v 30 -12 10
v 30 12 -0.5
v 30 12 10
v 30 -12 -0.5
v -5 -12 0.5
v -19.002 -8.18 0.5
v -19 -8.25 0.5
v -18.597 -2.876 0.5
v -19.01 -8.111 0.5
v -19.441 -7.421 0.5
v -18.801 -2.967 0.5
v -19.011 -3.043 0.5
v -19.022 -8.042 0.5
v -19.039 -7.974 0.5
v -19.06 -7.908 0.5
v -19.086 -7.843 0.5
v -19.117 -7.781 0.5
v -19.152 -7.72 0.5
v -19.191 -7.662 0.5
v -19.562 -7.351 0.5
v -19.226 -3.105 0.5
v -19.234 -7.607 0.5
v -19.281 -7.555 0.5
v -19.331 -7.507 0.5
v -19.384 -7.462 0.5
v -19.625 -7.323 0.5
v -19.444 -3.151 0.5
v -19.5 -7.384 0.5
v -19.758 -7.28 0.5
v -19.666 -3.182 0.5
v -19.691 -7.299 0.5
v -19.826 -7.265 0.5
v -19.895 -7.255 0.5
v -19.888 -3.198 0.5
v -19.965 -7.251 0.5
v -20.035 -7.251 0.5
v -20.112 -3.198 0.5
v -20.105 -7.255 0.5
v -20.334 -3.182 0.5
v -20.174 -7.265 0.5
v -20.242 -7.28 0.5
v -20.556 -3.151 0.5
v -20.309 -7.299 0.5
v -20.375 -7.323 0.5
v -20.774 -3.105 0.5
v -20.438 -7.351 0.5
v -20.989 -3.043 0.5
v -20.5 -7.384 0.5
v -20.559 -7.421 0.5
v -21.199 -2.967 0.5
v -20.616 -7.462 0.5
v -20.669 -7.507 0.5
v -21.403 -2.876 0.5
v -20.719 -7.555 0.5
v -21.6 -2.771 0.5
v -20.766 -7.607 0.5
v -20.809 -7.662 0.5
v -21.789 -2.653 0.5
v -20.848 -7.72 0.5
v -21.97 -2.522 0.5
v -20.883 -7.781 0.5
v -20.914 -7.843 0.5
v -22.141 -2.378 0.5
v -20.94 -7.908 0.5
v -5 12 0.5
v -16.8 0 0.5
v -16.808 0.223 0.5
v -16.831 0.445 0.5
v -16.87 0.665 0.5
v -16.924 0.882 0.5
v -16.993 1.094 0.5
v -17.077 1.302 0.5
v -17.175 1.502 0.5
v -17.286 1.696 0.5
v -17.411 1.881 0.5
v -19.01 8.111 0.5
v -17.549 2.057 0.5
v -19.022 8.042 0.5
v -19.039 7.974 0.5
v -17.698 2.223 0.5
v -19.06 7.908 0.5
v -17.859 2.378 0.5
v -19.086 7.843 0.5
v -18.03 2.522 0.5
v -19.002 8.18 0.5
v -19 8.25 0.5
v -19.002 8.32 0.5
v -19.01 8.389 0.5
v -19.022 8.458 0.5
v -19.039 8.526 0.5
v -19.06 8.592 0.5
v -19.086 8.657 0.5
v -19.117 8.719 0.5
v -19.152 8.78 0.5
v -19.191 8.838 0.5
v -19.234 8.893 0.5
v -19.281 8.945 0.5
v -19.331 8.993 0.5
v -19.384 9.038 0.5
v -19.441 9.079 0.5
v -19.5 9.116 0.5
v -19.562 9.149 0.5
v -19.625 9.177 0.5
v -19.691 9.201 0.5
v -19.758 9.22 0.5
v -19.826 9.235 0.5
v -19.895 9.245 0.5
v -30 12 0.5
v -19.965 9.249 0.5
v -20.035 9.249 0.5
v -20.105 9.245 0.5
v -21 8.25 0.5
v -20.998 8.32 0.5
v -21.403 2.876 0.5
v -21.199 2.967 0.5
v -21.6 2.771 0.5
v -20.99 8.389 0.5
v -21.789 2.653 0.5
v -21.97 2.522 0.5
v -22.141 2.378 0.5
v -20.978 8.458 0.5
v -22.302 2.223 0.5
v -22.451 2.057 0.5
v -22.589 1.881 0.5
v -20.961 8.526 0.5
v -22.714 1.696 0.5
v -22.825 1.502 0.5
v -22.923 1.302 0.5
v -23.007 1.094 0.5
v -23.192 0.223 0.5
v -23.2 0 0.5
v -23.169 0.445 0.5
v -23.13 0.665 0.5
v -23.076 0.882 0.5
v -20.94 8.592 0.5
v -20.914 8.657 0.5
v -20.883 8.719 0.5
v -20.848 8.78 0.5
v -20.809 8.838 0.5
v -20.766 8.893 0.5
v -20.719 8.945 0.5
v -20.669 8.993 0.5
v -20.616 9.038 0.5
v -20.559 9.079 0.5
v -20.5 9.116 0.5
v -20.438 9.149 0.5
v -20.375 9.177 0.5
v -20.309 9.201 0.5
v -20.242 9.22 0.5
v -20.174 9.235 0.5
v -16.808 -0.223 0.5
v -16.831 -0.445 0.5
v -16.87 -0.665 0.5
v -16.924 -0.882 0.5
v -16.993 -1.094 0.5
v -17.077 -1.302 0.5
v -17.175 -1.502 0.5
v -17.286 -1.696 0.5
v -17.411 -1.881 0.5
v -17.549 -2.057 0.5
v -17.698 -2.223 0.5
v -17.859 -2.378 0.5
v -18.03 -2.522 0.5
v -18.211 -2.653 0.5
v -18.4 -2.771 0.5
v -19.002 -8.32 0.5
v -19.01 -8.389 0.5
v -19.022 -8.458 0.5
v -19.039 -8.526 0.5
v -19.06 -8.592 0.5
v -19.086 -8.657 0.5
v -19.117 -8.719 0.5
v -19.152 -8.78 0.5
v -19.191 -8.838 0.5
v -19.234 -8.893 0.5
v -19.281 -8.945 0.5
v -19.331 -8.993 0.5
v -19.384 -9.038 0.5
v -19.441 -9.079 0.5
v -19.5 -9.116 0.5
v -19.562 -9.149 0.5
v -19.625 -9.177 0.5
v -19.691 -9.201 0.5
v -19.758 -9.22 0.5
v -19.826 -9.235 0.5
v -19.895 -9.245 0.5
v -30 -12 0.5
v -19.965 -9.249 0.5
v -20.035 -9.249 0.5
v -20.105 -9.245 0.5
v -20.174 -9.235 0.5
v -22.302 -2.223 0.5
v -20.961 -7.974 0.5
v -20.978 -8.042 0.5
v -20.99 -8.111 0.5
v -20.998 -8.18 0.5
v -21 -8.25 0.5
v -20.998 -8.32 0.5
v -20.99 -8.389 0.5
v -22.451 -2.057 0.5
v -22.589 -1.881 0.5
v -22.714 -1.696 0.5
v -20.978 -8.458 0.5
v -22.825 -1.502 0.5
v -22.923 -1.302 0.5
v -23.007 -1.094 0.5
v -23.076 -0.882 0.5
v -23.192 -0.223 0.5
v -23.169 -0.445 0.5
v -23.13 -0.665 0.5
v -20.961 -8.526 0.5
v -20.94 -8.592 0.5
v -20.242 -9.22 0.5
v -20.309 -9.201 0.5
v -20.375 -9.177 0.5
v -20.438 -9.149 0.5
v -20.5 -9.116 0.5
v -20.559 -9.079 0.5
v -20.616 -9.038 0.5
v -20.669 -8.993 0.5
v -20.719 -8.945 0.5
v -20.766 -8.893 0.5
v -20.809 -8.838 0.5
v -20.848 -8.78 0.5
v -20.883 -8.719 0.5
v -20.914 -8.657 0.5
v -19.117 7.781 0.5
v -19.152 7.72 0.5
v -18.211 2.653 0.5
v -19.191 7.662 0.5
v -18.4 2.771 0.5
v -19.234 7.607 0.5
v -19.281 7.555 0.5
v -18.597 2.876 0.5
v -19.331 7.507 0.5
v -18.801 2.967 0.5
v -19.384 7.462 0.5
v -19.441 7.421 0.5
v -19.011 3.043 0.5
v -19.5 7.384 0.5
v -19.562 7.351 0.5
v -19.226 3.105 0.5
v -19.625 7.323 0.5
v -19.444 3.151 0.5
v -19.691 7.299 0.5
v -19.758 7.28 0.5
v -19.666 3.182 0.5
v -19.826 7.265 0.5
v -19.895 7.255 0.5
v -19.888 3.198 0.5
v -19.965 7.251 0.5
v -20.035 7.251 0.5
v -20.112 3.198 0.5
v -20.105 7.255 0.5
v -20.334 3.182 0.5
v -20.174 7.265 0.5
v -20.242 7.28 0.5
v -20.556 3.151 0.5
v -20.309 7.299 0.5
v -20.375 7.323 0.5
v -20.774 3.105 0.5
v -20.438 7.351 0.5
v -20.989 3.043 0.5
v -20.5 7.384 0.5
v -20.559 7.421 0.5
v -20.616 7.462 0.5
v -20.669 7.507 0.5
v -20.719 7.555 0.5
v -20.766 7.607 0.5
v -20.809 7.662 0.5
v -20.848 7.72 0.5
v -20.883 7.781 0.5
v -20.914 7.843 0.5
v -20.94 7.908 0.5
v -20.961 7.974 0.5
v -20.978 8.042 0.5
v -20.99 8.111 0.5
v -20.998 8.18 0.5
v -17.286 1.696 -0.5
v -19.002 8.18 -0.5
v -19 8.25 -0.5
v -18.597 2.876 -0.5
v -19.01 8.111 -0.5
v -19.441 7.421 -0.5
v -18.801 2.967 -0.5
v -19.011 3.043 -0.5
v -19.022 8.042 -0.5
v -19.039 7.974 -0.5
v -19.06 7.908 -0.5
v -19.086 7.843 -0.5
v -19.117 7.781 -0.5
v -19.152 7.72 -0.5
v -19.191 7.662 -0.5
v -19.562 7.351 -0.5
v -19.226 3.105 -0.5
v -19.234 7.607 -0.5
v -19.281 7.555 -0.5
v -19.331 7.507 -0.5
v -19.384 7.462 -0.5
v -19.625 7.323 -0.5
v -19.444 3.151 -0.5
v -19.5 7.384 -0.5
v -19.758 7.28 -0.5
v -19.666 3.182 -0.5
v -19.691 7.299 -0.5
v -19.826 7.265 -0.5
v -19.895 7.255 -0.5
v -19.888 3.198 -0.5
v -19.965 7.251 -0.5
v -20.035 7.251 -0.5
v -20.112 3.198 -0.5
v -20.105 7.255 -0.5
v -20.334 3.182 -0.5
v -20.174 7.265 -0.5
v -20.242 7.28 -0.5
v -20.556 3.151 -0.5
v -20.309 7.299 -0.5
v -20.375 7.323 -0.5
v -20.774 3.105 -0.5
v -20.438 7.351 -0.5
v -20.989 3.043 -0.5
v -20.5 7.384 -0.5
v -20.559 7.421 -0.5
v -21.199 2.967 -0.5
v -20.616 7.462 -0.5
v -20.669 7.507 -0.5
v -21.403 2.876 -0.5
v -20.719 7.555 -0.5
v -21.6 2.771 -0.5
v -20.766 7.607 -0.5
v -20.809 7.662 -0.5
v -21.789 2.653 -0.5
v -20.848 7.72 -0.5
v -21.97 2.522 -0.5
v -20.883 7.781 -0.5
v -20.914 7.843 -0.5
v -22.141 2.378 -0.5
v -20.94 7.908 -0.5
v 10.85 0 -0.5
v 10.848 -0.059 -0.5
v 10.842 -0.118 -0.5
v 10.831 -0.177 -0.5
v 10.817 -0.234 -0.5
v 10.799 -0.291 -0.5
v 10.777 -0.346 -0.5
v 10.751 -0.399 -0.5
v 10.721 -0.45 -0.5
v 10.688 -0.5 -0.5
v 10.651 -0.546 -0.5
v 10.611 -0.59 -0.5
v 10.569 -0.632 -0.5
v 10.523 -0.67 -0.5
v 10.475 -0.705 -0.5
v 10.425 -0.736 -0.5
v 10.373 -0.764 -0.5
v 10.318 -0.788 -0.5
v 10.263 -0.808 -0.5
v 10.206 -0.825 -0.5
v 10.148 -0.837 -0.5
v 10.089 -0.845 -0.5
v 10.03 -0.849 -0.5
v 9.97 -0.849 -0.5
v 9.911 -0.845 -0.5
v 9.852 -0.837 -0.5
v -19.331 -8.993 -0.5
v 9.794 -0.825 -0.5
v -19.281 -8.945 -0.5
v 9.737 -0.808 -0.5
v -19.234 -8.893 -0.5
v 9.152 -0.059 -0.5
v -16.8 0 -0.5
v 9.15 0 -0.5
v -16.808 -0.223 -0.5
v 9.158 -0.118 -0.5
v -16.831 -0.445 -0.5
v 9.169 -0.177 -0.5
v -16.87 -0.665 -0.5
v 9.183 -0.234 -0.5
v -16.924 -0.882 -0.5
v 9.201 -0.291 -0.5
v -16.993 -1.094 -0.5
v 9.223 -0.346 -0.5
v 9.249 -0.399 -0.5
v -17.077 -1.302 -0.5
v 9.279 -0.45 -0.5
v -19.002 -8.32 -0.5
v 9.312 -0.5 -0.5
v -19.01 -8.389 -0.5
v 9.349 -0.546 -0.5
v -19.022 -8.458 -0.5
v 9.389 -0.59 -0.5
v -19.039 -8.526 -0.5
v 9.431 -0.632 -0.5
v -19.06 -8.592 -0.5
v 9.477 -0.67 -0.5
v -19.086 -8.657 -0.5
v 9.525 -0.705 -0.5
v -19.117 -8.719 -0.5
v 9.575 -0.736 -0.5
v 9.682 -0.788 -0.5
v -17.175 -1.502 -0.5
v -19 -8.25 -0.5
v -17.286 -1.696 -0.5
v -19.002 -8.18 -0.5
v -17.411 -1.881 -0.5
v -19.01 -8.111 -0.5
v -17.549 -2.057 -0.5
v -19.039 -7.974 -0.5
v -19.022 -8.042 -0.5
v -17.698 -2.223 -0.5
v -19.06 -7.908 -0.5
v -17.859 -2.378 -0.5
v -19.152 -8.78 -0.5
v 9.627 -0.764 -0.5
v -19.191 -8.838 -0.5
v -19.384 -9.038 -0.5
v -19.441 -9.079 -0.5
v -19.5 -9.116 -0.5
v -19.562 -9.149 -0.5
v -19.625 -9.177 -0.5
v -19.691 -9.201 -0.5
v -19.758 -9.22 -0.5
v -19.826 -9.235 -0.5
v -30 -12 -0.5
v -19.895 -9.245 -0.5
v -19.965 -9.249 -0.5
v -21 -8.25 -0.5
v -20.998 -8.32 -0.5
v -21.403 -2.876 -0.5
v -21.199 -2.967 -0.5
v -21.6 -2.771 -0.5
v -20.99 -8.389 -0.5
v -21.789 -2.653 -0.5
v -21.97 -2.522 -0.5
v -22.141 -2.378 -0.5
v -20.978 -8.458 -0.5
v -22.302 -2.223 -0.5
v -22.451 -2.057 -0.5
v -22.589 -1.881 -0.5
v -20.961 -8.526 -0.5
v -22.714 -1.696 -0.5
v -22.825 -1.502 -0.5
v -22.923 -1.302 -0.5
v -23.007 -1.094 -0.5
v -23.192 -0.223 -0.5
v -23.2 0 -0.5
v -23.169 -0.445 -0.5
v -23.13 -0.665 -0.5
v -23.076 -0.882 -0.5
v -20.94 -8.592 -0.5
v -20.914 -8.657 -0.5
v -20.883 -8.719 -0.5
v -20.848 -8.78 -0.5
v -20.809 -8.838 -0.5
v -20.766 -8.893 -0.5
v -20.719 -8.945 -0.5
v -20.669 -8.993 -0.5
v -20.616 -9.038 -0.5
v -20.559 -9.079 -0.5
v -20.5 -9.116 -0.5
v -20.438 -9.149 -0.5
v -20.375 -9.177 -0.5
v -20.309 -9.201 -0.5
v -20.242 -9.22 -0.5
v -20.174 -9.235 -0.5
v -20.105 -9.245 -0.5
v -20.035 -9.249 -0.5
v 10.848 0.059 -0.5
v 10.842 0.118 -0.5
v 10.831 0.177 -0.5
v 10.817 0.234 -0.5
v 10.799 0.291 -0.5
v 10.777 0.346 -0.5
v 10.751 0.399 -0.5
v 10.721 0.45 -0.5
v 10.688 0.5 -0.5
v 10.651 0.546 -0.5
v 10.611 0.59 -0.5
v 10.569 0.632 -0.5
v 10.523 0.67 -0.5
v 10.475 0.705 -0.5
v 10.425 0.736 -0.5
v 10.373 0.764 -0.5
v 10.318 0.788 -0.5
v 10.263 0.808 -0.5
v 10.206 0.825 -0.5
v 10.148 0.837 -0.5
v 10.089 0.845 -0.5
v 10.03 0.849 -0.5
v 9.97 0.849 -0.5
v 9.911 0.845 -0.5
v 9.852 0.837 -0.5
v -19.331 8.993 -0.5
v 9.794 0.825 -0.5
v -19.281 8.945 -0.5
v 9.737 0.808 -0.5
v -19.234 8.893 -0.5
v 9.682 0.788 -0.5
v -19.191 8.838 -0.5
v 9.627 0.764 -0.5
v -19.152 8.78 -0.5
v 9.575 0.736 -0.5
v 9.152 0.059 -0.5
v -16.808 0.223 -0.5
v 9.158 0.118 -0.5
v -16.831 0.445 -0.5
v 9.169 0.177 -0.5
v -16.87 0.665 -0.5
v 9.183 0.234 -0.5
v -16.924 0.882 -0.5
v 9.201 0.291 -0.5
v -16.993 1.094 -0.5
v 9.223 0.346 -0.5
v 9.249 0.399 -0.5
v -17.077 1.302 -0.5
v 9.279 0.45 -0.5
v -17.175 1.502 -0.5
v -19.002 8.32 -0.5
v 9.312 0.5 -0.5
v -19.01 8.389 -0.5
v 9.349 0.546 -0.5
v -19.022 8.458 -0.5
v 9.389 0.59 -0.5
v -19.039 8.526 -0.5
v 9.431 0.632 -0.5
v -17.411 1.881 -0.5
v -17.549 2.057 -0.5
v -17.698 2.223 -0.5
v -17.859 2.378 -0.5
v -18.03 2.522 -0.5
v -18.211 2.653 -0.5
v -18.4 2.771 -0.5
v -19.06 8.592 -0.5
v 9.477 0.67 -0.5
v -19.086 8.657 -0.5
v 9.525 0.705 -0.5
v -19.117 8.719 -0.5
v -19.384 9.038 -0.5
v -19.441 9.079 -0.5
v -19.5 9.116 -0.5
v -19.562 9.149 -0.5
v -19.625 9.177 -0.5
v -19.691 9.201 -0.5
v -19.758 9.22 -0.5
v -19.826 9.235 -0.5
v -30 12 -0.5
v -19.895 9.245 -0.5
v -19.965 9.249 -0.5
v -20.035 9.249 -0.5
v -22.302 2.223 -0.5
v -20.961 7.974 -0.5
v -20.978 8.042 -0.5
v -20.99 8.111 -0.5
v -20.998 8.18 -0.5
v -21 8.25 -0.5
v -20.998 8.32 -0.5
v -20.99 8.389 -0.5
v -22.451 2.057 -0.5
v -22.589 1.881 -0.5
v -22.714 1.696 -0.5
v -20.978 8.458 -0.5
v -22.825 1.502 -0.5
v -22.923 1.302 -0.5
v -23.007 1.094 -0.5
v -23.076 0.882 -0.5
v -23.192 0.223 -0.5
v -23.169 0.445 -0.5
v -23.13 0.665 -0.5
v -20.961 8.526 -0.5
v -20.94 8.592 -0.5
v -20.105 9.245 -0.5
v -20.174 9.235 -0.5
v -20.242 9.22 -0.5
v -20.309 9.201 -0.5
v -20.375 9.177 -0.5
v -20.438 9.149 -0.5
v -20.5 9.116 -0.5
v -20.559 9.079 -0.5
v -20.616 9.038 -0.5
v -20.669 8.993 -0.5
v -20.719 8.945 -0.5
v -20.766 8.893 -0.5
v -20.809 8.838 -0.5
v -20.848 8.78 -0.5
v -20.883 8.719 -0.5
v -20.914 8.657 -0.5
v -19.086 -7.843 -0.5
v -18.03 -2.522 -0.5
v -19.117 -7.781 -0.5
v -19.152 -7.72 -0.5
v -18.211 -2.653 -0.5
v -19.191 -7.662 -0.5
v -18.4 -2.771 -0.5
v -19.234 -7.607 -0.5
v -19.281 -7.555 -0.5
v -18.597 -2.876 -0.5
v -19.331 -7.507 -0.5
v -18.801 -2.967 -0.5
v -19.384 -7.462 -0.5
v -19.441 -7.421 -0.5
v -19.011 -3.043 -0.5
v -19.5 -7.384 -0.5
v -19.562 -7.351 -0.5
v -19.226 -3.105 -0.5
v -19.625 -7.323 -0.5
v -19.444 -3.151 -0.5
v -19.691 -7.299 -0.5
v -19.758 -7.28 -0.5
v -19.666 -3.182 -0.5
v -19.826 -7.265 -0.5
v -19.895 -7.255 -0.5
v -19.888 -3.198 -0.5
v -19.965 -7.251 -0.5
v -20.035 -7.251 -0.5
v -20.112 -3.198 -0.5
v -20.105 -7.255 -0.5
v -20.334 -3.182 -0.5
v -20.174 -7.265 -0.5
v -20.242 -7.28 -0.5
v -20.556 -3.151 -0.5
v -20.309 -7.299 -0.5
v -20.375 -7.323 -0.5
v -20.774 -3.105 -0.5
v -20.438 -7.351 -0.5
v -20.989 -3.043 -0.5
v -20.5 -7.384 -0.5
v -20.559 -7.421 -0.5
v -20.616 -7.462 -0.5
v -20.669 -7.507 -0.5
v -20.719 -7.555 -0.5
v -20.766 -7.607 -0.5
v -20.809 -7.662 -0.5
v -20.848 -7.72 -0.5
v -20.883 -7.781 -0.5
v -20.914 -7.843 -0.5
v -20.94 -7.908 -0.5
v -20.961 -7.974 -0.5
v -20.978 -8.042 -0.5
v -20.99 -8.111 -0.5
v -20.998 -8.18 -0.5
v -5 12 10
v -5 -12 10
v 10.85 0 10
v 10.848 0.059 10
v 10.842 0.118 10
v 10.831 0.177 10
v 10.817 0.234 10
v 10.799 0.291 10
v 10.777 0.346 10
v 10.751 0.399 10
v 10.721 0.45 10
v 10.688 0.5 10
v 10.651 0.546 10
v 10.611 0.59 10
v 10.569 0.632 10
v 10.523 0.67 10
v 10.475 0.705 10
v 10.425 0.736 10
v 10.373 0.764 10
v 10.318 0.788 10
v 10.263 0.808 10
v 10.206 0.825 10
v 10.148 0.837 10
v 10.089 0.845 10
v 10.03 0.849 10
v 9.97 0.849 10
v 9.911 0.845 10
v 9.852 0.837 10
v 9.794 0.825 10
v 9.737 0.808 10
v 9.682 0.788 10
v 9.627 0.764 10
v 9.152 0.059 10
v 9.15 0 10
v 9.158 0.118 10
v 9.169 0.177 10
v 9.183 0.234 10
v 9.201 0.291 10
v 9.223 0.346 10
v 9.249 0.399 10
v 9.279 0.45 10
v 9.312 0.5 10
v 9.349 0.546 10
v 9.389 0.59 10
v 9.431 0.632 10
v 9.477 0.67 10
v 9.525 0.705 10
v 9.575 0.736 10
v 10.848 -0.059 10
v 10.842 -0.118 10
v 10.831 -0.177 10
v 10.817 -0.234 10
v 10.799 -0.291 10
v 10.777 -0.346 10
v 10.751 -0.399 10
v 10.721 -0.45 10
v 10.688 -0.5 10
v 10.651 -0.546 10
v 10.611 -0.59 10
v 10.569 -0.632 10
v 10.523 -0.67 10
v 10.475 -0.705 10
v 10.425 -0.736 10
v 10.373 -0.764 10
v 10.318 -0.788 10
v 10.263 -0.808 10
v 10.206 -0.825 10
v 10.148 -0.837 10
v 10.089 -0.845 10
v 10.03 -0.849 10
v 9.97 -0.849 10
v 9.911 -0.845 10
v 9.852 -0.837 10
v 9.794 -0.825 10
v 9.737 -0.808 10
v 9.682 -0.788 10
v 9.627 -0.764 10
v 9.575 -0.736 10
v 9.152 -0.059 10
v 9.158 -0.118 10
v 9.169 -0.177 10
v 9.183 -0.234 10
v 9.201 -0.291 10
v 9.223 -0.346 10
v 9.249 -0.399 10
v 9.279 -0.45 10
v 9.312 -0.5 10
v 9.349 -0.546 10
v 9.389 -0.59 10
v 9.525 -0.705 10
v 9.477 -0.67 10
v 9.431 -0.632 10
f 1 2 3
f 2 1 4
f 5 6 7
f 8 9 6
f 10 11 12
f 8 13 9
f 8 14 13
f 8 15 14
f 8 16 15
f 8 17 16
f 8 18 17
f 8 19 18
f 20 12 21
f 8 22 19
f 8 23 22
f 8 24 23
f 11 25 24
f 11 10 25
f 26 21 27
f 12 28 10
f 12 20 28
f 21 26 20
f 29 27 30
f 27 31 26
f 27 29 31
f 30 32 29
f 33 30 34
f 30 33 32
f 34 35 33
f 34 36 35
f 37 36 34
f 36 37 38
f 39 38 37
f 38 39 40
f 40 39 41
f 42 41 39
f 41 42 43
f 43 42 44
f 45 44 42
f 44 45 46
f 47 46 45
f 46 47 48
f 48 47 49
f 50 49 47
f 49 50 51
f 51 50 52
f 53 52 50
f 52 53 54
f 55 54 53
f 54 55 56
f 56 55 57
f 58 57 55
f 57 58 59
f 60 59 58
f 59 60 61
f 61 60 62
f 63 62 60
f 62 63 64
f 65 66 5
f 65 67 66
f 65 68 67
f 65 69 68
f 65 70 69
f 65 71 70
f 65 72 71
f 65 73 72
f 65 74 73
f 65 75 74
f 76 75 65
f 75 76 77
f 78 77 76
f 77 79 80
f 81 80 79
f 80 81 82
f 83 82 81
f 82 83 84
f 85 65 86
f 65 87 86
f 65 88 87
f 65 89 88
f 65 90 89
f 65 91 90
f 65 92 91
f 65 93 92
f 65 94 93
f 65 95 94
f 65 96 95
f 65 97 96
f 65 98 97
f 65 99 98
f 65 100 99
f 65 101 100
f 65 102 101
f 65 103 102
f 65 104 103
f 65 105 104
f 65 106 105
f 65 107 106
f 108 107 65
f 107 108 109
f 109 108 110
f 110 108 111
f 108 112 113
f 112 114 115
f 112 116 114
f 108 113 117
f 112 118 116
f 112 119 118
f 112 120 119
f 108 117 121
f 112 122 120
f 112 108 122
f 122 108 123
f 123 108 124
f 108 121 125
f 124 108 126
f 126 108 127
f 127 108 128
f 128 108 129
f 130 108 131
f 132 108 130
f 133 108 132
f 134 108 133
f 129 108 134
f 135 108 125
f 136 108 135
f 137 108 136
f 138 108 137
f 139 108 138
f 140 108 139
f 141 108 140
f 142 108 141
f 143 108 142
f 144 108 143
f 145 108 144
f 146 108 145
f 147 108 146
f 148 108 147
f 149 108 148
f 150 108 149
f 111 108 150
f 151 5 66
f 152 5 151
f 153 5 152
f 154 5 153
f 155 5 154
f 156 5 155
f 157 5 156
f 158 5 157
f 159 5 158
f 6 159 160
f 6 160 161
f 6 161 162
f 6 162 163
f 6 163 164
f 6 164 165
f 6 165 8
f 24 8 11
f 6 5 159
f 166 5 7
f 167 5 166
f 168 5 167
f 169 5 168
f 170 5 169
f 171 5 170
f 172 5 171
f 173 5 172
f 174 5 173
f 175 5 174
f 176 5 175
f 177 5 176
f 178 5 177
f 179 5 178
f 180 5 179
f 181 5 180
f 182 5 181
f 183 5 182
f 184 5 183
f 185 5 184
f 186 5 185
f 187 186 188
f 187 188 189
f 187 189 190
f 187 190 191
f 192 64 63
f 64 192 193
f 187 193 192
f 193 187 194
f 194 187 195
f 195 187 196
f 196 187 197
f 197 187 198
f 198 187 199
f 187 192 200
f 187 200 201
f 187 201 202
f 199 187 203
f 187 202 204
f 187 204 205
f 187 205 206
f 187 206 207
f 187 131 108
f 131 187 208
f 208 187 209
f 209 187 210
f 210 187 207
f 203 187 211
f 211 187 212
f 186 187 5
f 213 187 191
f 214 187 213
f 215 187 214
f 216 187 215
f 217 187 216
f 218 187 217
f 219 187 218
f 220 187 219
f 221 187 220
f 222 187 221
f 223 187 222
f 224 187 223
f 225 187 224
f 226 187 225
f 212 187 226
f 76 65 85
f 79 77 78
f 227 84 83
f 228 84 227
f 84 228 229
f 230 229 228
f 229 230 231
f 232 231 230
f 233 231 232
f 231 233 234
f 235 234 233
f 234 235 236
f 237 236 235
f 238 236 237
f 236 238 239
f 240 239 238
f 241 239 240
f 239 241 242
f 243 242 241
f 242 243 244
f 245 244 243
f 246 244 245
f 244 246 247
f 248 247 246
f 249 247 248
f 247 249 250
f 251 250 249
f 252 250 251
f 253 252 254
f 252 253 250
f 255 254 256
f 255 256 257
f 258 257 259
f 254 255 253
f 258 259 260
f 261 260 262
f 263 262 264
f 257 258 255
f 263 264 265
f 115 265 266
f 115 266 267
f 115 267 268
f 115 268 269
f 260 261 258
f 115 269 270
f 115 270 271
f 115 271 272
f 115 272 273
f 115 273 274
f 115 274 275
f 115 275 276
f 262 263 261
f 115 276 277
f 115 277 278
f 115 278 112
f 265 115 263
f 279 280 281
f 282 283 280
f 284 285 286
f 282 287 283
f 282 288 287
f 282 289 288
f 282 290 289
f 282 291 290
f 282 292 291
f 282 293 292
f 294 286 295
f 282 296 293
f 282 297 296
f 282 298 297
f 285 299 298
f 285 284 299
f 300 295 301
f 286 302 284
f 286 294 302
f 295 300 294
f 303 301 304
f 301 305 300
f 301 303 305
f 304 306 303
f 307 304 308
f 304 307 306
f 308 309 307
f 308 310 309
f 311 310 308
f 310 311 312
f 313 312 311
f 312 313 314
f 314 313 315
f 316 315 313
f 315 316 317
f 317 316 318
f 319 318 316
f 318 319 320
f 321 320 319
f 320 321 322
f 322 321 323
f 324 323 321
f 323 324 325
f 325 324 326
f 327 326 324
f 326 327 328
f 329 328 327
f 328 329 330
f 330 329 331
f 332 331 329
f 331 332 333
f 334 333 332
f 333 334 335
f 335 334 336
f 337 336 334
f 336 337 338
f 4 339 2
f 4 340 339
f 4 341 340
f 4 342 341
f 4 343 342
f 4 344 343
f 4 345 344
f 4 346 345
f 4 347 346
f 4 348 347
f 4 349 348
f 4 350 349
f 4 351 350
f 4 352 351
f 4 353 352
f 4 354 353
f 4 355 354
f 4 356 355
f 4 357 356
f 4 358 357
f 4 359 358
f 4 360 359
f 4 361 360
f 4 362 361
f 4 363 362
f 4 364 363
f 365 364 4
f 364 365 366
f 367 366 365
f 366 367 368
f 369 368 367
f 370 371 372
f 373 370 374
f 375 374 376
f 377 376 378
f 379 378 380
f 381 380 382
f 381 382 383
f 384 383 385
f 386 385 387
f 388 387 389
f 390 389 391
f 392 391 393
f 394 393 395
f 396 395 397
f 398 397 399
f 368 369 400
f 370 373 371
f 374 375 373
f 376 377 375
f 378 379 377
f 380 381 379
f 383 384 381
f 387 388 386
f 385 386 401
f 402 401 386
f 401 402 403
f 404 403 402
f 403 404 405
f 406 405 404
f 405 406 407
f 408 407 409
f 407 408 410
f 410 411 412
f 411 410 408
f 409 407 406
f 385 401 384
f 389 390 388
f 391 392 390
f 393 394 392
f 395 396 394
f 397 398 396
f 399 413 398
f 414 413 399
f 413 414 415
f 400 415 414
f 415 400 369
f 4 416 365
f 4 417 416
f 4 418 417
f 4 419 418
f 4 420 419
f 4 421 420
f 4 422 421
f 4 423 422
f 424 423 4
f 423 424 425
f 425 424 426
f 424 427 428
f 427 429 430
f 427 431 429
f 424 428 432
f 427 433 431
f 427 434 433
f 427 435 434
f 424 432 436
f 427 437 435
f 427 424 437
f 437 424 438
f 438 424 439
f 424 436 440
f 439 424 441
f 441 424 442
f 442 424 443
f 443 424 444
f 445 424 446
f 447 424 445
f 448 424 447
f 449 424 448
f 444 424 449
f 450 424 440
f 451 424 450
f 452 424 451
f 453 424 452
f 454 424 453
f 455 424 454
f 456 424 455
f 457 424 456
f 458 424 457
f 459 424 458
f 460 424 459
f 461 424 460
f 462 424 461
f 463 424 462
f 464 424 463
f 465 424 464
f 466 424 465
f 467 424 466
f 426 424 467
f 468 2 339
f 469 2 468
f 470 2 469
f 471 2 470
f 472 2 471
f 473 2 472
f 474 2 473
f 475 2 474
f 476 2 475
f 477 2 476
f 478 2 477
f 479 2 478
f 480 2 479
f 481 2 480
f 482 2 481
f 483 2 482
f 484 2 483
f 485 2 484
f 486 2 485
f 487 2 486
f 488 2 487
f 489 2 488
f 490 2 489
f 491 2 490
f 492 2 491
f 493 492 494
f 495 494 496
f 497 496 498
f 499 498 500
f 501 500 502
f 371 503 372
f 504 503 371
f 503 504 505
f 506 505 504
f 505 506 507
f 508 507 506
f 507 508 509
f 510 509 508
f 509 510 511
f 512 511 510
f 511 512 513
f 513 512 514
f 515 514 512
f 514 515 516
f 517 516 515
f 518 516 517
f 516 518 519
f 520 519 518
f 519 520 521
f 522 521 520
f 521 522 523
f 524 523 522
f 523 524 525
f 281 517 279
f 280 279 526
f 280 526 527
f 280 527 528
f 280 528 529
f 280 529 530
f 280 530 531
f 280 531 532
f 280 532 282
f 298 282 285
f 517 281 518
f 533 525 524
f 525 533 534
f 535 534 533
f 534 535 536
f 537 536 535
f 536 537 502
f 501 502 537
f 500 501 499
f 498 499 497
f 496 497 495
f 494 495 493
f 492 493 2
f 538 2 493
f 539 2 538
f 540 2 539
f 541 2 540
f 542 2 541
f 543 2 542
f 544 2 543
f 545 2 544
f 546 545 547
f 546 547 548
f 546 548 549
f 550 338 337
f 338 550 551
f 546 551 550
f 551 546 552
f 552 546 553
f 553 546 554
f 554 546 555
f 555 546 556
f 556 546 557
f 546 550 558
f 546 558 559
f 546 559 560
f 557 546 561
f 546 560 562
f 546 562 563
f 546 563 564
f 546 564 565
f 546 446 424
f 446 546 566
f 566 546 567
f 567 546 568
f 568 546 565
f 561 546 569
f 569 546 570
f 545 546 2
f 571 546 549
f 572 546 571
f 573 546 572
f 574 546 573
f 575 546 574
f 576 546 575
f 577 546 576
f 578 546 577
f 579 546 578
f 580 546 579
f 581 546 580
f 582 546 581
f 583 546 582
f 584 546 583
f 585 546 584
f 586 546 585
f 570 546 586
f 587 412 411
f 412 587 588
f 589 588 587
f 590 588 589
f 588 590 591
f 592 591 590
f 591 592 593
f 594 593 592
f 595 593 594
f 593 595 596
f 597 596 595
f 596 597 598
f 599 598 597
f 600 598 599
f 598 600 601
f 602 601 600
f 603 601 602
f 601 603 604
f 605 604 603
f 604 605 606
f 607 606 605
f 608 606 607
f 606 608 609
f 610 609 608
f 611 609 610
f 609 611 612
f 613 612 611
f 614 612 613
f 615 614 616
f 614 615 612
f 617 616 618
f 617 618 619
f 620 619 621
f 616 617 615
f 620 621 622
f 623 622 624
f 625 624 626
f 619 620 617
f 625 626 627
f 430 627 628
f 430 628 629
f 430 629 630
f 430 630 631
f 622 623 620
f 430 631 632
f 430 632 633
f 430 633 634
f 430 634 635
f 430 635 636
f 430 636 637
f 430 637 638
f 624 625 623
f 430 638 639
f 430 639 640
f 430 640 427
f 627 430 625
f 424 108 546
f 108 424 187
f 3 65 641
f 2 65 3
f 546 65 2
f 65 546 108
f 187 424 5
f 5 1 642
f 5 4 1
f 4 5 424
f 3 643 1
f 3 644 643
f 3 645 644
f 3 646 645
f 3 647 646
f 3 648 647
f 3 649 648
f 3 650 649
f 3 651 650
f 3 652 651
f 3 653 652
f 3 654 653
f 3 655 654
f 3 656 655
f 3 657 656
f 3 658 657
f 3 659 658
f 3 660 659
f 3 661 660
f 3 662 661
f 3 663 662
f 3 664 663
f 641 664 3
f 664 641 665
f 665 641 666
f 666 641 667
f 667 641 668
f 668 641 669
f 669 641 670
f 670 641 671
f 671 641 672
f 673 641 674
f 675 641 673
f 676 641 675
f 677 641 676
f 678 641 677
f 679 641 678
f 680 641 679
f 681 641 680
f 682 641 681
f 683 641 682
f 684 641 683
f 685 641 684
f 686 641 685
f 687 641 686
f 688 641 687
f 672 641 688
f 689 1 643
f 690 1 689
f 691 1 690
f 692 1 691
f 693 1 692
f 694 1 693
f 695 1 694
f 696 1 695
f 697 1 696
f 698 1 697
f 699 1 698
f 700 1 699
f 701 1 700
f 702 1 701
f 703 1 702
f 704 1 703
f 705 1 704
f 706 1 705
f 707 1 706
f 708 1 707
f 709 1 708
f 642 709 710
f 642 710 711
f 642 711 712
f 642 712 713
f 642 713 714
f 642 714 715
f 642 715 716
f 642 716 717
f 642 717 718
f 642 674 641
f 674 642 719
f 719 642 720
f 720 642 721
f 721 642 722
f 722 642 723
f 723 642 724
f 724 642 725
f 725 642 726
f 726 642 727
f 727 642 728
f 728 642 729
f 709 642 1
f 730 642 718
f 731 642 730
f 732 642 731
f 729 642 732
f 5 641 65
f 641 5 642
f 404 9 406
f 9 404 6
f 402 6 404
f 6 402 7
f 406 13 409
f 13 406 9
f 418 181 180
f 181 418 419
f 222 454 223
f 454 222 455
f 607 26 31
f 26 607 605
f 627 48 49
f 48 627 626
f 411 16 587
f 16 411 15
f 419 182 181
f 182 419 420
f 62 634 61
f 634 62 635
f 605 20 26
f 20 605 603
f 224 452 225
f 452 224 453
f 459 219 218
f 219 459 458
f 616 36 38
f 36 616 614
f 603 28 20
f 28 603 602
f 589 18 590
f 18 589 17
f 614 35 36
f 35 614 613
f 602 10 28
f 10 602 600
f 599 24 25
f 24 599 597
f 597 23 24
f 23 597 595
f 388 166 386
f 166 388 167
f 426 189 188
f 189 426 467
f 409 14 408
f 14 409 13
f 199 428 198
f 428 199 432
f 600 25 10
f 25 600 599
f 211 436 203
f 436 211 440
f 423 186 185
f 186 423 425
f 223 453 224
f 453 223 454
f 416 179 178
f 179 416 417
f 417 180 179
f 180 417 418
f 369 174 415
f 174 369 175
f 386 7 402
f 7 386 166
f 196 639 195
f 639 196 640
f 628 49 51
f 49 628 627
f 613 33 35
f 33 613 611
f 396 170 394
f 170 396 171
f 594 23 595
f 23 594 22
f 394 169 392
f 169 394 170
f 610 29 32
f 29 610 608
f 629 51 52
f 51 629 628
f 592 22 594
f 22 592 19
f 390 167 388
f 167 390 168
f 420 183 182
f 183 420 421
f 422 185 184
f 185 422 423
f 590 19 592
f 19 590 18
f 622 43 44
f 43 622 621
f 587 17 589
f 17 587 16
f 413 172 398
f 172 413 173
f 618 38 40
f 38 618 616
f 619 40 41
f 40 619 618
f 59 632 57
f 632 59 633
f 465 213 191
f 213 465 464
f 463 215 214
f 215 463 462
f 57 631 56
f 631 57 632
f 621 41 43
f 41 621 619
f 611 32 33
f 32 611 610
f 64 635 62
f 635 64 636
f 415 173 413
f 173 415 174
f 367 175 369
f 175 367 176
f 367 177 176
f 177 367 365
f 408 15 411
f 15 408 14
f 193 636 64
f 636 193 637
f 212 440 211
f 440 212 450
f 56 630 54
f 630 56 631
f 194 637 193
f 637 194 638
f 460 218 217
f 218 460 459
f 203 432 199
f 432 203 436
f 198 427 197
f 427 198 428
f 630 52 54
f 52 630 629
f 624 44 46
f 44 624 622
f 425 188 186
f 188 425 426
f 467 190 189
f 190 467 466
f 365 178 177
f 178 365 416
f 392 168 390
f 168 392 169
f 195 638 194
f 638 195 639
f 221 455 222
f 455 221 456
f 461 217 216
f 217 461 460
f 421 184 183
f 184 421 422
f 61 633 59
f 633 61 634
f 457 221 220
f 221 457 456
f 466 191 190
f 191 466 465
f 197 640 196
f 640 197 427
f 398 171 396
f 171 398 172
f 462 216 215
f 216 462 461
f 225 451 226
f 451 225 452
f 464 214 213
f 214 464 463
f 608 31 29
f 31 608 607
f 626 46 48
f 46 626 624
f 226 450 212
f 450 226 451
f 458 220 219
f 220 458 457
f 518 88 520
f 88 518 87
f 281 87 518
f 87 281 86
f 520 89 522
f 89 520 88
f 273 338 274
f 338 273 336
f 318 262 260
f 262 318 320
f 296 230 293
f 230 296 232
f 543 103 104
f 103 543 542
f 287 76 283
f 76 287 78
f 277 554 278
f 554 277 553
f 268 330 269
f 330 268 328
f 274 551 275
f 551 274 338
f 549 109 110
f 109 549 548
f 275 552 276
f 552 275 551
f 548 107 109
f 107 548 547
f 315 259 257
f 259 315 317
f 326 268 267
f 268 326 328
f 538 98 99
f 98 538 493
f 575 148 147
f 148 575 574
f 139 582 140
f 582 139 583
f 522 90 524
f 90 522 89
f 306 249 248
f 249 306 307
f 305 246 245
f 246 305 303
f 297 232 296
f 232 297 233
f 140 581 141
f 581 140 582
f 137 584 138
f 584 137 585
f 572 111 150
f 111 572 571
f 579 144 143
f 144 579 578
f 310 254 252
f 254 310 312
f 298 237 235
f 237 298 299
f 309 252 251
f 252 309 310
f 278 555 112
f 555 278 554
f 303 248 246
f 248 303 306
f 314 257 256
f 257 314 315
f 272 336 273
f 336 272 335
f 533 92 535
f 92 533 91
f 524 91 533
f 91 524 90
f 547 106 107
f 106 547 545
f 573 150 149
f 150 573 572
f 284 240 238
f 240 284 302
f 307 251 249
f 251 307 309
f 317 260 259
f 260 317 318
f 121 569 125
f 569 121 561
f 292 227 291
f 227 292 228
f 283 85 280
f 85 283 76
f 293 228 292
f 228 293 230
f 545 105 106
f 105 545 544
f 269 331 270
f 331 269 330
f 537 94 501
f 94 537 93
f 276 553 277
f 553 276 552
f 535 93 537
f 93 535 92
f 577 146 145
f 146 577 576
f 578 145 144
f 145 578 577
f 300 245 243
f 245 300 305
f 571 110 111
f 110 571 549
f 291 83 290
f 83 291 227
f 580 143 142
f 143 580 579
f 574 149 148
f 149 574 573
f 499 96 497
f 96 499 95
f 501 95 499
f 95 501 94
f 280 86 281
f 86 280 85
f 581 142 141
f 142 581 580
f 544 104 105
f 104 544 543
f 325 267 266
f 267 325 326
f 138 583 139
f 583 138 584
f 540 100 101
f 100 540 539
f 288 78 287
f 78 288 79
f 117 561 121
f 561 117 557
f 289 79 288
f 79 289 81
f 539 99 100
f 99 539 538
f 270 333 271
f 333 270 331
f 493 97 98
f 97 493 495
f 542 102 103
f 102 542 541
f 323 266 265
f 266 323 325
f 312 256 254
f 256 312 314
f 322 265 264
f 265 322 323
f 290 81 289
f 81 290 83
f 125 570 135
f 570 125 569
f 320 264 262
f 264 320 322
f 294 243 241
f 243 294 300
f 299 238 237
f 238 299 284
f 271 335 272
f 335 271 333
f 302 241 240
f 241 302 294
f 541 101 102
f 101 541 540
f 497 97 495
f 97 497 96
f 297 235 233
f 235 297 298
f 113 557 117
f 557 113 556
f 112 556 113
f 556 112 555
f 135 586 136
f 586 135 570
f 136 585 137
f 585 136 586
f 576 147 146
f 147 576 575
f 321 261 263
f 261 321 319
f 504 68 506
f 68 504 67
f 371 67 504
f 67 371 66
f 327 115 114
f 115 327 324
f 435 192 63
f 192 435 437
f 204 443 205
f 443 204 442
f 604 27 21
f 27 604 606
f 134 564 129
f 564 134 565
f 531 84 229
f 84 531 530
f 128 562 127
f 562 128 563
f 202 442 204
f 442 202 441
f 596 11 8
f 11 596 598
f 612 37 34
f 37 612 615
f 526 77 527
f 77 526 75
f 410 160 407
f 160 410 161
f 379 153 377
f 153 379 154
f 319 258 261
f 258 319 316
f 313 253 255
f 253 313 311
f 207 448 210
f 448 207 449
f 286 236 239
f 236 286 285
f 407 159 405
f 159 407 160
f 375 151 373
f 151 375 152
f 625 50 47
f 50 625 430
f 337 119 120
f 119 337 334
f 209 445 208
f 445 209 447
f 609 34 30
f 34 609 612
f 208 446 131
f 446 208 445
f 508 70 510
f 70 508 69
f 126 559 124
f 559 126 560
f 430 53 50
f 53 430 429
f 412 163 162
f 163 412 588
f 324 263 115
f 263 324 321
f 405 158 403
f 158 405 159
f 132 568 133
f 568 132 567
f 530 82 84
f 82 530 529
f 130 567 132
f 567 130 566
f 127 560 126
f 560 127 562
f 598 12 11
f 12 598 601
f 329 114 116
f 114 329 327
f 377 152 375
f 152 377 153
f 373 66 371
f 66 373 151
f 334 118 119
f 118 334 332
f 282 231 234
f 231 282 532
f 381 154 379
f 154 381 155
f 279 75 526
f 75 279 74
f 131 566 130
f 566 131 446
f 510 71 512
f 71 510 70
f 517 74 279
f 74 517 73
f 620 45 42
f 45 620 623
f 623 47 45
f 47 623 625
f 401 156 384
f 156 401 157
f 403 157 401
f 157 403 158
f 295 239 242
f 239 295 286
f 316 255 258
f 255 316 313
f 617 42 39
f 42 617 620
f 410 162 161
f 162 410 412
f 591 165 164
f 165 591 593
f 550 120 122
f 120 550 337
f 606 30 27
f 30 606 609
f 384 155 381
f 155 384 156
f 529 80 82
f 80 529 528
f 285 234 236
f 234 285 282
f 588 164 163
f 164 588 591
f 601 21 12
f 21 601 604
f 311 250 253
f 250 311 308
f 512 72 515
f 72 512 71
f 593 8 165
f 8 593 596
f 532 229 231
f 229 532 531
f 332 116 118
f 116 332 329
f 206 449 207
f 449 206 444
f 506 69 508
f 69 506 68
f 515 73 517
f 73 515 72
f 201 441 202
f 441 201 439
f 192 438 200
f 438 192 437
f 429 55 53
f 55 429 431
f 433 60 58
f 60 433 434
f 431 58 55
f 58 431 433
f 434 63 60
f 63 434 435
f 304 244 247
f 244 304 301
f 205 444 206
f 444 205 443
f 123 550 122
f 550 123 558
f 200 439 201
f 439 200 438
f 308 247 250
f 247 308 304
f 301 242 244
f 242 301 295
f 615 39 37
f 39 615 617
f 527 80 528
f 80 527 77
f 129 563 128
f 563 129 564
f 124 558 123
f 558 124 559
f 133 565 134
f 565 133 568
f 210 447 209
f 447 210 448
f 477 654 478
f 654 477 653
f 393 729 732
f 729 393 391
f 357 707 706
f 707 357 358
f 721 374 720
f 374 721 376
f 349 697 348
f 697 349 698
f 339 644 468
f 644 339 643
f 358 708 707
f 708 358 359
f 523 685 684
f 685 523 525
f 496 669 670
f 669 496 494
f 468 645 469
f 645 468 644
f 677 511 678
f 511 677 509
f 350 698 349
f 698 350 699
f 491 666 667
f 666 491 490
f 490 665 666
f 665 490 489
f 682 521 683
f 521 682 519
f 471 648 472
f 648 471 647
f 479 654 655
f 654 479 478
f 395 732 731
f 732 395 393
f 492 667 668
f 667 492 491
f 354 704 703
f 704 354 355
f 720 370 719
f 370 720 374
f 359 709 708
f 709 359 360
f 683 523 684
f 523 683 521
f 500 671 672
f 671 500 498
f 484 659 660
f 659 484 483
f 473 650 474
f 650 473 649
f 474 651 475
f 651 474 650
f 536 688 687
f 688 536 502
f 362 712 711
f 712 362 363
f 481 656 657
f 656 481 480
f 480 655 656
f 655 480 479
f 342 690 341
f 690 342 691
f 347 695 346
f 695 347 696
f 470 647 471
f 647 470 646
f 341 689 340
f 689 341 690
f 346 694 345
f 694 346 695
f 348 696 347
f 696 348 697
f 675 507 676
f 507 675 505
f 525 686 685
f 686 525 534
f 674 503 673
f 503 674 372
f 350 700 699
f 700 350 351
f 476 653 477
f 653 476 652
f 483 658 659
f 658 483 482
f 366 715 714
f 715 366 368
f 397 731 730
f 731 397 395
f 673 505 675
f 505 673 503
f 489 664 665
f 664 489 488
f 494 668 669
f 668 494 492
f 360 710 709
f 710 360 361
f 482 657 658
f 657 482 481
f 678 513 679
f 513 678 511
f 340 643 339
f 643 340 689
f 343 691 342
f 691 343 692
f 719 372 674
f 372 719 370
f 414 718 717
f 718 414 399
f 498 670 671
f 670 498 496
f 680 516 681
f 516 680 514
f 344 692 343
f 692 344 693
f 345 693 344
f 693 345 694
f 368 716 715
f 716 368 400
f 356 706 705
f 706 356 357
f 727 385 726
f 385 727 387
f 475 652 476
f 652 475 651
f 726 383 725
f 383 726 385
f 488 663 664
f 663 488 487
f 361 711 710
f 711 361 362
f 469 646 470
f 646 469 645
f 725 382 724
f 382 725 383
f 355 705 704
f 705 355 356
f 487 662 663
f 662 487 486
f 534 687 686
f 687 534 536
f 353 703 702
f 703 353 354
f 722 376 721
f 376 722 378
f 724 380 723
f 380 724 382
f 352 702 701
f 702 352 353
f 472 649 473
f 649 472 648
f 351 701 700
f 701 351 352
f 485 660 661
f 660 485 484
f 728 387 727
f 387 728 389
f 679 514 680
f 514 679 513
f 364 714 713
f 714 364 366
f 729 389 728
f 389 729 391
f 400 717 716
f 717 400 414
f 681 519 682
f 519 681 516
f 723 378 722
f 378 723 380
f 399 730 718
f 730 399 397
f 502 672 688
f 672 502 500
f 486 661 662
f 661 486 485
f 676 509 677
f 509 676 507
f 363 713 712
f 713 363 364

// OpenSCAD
$fn = 90;
height = 1;

difference(){
	union(){
		cube([60, 24, height], center=true);
		translate([12.5, 0, 5])
			cube([35, 24, 10], center=true);
	}
	translate([-20, 0, 0]){
		#cylinder(d=6.4, h=height, center=true);
		yAbs = 16.5/2;
		for(y = [-yAbs, yAbs]){
			translate([0, y, 0])
				#cylinder(d=2, h=height, center=true);
		}
	}
	translate([10, 0, 0]){
		#cylinder(d=1.7, h=25, center=true);
	}
}
